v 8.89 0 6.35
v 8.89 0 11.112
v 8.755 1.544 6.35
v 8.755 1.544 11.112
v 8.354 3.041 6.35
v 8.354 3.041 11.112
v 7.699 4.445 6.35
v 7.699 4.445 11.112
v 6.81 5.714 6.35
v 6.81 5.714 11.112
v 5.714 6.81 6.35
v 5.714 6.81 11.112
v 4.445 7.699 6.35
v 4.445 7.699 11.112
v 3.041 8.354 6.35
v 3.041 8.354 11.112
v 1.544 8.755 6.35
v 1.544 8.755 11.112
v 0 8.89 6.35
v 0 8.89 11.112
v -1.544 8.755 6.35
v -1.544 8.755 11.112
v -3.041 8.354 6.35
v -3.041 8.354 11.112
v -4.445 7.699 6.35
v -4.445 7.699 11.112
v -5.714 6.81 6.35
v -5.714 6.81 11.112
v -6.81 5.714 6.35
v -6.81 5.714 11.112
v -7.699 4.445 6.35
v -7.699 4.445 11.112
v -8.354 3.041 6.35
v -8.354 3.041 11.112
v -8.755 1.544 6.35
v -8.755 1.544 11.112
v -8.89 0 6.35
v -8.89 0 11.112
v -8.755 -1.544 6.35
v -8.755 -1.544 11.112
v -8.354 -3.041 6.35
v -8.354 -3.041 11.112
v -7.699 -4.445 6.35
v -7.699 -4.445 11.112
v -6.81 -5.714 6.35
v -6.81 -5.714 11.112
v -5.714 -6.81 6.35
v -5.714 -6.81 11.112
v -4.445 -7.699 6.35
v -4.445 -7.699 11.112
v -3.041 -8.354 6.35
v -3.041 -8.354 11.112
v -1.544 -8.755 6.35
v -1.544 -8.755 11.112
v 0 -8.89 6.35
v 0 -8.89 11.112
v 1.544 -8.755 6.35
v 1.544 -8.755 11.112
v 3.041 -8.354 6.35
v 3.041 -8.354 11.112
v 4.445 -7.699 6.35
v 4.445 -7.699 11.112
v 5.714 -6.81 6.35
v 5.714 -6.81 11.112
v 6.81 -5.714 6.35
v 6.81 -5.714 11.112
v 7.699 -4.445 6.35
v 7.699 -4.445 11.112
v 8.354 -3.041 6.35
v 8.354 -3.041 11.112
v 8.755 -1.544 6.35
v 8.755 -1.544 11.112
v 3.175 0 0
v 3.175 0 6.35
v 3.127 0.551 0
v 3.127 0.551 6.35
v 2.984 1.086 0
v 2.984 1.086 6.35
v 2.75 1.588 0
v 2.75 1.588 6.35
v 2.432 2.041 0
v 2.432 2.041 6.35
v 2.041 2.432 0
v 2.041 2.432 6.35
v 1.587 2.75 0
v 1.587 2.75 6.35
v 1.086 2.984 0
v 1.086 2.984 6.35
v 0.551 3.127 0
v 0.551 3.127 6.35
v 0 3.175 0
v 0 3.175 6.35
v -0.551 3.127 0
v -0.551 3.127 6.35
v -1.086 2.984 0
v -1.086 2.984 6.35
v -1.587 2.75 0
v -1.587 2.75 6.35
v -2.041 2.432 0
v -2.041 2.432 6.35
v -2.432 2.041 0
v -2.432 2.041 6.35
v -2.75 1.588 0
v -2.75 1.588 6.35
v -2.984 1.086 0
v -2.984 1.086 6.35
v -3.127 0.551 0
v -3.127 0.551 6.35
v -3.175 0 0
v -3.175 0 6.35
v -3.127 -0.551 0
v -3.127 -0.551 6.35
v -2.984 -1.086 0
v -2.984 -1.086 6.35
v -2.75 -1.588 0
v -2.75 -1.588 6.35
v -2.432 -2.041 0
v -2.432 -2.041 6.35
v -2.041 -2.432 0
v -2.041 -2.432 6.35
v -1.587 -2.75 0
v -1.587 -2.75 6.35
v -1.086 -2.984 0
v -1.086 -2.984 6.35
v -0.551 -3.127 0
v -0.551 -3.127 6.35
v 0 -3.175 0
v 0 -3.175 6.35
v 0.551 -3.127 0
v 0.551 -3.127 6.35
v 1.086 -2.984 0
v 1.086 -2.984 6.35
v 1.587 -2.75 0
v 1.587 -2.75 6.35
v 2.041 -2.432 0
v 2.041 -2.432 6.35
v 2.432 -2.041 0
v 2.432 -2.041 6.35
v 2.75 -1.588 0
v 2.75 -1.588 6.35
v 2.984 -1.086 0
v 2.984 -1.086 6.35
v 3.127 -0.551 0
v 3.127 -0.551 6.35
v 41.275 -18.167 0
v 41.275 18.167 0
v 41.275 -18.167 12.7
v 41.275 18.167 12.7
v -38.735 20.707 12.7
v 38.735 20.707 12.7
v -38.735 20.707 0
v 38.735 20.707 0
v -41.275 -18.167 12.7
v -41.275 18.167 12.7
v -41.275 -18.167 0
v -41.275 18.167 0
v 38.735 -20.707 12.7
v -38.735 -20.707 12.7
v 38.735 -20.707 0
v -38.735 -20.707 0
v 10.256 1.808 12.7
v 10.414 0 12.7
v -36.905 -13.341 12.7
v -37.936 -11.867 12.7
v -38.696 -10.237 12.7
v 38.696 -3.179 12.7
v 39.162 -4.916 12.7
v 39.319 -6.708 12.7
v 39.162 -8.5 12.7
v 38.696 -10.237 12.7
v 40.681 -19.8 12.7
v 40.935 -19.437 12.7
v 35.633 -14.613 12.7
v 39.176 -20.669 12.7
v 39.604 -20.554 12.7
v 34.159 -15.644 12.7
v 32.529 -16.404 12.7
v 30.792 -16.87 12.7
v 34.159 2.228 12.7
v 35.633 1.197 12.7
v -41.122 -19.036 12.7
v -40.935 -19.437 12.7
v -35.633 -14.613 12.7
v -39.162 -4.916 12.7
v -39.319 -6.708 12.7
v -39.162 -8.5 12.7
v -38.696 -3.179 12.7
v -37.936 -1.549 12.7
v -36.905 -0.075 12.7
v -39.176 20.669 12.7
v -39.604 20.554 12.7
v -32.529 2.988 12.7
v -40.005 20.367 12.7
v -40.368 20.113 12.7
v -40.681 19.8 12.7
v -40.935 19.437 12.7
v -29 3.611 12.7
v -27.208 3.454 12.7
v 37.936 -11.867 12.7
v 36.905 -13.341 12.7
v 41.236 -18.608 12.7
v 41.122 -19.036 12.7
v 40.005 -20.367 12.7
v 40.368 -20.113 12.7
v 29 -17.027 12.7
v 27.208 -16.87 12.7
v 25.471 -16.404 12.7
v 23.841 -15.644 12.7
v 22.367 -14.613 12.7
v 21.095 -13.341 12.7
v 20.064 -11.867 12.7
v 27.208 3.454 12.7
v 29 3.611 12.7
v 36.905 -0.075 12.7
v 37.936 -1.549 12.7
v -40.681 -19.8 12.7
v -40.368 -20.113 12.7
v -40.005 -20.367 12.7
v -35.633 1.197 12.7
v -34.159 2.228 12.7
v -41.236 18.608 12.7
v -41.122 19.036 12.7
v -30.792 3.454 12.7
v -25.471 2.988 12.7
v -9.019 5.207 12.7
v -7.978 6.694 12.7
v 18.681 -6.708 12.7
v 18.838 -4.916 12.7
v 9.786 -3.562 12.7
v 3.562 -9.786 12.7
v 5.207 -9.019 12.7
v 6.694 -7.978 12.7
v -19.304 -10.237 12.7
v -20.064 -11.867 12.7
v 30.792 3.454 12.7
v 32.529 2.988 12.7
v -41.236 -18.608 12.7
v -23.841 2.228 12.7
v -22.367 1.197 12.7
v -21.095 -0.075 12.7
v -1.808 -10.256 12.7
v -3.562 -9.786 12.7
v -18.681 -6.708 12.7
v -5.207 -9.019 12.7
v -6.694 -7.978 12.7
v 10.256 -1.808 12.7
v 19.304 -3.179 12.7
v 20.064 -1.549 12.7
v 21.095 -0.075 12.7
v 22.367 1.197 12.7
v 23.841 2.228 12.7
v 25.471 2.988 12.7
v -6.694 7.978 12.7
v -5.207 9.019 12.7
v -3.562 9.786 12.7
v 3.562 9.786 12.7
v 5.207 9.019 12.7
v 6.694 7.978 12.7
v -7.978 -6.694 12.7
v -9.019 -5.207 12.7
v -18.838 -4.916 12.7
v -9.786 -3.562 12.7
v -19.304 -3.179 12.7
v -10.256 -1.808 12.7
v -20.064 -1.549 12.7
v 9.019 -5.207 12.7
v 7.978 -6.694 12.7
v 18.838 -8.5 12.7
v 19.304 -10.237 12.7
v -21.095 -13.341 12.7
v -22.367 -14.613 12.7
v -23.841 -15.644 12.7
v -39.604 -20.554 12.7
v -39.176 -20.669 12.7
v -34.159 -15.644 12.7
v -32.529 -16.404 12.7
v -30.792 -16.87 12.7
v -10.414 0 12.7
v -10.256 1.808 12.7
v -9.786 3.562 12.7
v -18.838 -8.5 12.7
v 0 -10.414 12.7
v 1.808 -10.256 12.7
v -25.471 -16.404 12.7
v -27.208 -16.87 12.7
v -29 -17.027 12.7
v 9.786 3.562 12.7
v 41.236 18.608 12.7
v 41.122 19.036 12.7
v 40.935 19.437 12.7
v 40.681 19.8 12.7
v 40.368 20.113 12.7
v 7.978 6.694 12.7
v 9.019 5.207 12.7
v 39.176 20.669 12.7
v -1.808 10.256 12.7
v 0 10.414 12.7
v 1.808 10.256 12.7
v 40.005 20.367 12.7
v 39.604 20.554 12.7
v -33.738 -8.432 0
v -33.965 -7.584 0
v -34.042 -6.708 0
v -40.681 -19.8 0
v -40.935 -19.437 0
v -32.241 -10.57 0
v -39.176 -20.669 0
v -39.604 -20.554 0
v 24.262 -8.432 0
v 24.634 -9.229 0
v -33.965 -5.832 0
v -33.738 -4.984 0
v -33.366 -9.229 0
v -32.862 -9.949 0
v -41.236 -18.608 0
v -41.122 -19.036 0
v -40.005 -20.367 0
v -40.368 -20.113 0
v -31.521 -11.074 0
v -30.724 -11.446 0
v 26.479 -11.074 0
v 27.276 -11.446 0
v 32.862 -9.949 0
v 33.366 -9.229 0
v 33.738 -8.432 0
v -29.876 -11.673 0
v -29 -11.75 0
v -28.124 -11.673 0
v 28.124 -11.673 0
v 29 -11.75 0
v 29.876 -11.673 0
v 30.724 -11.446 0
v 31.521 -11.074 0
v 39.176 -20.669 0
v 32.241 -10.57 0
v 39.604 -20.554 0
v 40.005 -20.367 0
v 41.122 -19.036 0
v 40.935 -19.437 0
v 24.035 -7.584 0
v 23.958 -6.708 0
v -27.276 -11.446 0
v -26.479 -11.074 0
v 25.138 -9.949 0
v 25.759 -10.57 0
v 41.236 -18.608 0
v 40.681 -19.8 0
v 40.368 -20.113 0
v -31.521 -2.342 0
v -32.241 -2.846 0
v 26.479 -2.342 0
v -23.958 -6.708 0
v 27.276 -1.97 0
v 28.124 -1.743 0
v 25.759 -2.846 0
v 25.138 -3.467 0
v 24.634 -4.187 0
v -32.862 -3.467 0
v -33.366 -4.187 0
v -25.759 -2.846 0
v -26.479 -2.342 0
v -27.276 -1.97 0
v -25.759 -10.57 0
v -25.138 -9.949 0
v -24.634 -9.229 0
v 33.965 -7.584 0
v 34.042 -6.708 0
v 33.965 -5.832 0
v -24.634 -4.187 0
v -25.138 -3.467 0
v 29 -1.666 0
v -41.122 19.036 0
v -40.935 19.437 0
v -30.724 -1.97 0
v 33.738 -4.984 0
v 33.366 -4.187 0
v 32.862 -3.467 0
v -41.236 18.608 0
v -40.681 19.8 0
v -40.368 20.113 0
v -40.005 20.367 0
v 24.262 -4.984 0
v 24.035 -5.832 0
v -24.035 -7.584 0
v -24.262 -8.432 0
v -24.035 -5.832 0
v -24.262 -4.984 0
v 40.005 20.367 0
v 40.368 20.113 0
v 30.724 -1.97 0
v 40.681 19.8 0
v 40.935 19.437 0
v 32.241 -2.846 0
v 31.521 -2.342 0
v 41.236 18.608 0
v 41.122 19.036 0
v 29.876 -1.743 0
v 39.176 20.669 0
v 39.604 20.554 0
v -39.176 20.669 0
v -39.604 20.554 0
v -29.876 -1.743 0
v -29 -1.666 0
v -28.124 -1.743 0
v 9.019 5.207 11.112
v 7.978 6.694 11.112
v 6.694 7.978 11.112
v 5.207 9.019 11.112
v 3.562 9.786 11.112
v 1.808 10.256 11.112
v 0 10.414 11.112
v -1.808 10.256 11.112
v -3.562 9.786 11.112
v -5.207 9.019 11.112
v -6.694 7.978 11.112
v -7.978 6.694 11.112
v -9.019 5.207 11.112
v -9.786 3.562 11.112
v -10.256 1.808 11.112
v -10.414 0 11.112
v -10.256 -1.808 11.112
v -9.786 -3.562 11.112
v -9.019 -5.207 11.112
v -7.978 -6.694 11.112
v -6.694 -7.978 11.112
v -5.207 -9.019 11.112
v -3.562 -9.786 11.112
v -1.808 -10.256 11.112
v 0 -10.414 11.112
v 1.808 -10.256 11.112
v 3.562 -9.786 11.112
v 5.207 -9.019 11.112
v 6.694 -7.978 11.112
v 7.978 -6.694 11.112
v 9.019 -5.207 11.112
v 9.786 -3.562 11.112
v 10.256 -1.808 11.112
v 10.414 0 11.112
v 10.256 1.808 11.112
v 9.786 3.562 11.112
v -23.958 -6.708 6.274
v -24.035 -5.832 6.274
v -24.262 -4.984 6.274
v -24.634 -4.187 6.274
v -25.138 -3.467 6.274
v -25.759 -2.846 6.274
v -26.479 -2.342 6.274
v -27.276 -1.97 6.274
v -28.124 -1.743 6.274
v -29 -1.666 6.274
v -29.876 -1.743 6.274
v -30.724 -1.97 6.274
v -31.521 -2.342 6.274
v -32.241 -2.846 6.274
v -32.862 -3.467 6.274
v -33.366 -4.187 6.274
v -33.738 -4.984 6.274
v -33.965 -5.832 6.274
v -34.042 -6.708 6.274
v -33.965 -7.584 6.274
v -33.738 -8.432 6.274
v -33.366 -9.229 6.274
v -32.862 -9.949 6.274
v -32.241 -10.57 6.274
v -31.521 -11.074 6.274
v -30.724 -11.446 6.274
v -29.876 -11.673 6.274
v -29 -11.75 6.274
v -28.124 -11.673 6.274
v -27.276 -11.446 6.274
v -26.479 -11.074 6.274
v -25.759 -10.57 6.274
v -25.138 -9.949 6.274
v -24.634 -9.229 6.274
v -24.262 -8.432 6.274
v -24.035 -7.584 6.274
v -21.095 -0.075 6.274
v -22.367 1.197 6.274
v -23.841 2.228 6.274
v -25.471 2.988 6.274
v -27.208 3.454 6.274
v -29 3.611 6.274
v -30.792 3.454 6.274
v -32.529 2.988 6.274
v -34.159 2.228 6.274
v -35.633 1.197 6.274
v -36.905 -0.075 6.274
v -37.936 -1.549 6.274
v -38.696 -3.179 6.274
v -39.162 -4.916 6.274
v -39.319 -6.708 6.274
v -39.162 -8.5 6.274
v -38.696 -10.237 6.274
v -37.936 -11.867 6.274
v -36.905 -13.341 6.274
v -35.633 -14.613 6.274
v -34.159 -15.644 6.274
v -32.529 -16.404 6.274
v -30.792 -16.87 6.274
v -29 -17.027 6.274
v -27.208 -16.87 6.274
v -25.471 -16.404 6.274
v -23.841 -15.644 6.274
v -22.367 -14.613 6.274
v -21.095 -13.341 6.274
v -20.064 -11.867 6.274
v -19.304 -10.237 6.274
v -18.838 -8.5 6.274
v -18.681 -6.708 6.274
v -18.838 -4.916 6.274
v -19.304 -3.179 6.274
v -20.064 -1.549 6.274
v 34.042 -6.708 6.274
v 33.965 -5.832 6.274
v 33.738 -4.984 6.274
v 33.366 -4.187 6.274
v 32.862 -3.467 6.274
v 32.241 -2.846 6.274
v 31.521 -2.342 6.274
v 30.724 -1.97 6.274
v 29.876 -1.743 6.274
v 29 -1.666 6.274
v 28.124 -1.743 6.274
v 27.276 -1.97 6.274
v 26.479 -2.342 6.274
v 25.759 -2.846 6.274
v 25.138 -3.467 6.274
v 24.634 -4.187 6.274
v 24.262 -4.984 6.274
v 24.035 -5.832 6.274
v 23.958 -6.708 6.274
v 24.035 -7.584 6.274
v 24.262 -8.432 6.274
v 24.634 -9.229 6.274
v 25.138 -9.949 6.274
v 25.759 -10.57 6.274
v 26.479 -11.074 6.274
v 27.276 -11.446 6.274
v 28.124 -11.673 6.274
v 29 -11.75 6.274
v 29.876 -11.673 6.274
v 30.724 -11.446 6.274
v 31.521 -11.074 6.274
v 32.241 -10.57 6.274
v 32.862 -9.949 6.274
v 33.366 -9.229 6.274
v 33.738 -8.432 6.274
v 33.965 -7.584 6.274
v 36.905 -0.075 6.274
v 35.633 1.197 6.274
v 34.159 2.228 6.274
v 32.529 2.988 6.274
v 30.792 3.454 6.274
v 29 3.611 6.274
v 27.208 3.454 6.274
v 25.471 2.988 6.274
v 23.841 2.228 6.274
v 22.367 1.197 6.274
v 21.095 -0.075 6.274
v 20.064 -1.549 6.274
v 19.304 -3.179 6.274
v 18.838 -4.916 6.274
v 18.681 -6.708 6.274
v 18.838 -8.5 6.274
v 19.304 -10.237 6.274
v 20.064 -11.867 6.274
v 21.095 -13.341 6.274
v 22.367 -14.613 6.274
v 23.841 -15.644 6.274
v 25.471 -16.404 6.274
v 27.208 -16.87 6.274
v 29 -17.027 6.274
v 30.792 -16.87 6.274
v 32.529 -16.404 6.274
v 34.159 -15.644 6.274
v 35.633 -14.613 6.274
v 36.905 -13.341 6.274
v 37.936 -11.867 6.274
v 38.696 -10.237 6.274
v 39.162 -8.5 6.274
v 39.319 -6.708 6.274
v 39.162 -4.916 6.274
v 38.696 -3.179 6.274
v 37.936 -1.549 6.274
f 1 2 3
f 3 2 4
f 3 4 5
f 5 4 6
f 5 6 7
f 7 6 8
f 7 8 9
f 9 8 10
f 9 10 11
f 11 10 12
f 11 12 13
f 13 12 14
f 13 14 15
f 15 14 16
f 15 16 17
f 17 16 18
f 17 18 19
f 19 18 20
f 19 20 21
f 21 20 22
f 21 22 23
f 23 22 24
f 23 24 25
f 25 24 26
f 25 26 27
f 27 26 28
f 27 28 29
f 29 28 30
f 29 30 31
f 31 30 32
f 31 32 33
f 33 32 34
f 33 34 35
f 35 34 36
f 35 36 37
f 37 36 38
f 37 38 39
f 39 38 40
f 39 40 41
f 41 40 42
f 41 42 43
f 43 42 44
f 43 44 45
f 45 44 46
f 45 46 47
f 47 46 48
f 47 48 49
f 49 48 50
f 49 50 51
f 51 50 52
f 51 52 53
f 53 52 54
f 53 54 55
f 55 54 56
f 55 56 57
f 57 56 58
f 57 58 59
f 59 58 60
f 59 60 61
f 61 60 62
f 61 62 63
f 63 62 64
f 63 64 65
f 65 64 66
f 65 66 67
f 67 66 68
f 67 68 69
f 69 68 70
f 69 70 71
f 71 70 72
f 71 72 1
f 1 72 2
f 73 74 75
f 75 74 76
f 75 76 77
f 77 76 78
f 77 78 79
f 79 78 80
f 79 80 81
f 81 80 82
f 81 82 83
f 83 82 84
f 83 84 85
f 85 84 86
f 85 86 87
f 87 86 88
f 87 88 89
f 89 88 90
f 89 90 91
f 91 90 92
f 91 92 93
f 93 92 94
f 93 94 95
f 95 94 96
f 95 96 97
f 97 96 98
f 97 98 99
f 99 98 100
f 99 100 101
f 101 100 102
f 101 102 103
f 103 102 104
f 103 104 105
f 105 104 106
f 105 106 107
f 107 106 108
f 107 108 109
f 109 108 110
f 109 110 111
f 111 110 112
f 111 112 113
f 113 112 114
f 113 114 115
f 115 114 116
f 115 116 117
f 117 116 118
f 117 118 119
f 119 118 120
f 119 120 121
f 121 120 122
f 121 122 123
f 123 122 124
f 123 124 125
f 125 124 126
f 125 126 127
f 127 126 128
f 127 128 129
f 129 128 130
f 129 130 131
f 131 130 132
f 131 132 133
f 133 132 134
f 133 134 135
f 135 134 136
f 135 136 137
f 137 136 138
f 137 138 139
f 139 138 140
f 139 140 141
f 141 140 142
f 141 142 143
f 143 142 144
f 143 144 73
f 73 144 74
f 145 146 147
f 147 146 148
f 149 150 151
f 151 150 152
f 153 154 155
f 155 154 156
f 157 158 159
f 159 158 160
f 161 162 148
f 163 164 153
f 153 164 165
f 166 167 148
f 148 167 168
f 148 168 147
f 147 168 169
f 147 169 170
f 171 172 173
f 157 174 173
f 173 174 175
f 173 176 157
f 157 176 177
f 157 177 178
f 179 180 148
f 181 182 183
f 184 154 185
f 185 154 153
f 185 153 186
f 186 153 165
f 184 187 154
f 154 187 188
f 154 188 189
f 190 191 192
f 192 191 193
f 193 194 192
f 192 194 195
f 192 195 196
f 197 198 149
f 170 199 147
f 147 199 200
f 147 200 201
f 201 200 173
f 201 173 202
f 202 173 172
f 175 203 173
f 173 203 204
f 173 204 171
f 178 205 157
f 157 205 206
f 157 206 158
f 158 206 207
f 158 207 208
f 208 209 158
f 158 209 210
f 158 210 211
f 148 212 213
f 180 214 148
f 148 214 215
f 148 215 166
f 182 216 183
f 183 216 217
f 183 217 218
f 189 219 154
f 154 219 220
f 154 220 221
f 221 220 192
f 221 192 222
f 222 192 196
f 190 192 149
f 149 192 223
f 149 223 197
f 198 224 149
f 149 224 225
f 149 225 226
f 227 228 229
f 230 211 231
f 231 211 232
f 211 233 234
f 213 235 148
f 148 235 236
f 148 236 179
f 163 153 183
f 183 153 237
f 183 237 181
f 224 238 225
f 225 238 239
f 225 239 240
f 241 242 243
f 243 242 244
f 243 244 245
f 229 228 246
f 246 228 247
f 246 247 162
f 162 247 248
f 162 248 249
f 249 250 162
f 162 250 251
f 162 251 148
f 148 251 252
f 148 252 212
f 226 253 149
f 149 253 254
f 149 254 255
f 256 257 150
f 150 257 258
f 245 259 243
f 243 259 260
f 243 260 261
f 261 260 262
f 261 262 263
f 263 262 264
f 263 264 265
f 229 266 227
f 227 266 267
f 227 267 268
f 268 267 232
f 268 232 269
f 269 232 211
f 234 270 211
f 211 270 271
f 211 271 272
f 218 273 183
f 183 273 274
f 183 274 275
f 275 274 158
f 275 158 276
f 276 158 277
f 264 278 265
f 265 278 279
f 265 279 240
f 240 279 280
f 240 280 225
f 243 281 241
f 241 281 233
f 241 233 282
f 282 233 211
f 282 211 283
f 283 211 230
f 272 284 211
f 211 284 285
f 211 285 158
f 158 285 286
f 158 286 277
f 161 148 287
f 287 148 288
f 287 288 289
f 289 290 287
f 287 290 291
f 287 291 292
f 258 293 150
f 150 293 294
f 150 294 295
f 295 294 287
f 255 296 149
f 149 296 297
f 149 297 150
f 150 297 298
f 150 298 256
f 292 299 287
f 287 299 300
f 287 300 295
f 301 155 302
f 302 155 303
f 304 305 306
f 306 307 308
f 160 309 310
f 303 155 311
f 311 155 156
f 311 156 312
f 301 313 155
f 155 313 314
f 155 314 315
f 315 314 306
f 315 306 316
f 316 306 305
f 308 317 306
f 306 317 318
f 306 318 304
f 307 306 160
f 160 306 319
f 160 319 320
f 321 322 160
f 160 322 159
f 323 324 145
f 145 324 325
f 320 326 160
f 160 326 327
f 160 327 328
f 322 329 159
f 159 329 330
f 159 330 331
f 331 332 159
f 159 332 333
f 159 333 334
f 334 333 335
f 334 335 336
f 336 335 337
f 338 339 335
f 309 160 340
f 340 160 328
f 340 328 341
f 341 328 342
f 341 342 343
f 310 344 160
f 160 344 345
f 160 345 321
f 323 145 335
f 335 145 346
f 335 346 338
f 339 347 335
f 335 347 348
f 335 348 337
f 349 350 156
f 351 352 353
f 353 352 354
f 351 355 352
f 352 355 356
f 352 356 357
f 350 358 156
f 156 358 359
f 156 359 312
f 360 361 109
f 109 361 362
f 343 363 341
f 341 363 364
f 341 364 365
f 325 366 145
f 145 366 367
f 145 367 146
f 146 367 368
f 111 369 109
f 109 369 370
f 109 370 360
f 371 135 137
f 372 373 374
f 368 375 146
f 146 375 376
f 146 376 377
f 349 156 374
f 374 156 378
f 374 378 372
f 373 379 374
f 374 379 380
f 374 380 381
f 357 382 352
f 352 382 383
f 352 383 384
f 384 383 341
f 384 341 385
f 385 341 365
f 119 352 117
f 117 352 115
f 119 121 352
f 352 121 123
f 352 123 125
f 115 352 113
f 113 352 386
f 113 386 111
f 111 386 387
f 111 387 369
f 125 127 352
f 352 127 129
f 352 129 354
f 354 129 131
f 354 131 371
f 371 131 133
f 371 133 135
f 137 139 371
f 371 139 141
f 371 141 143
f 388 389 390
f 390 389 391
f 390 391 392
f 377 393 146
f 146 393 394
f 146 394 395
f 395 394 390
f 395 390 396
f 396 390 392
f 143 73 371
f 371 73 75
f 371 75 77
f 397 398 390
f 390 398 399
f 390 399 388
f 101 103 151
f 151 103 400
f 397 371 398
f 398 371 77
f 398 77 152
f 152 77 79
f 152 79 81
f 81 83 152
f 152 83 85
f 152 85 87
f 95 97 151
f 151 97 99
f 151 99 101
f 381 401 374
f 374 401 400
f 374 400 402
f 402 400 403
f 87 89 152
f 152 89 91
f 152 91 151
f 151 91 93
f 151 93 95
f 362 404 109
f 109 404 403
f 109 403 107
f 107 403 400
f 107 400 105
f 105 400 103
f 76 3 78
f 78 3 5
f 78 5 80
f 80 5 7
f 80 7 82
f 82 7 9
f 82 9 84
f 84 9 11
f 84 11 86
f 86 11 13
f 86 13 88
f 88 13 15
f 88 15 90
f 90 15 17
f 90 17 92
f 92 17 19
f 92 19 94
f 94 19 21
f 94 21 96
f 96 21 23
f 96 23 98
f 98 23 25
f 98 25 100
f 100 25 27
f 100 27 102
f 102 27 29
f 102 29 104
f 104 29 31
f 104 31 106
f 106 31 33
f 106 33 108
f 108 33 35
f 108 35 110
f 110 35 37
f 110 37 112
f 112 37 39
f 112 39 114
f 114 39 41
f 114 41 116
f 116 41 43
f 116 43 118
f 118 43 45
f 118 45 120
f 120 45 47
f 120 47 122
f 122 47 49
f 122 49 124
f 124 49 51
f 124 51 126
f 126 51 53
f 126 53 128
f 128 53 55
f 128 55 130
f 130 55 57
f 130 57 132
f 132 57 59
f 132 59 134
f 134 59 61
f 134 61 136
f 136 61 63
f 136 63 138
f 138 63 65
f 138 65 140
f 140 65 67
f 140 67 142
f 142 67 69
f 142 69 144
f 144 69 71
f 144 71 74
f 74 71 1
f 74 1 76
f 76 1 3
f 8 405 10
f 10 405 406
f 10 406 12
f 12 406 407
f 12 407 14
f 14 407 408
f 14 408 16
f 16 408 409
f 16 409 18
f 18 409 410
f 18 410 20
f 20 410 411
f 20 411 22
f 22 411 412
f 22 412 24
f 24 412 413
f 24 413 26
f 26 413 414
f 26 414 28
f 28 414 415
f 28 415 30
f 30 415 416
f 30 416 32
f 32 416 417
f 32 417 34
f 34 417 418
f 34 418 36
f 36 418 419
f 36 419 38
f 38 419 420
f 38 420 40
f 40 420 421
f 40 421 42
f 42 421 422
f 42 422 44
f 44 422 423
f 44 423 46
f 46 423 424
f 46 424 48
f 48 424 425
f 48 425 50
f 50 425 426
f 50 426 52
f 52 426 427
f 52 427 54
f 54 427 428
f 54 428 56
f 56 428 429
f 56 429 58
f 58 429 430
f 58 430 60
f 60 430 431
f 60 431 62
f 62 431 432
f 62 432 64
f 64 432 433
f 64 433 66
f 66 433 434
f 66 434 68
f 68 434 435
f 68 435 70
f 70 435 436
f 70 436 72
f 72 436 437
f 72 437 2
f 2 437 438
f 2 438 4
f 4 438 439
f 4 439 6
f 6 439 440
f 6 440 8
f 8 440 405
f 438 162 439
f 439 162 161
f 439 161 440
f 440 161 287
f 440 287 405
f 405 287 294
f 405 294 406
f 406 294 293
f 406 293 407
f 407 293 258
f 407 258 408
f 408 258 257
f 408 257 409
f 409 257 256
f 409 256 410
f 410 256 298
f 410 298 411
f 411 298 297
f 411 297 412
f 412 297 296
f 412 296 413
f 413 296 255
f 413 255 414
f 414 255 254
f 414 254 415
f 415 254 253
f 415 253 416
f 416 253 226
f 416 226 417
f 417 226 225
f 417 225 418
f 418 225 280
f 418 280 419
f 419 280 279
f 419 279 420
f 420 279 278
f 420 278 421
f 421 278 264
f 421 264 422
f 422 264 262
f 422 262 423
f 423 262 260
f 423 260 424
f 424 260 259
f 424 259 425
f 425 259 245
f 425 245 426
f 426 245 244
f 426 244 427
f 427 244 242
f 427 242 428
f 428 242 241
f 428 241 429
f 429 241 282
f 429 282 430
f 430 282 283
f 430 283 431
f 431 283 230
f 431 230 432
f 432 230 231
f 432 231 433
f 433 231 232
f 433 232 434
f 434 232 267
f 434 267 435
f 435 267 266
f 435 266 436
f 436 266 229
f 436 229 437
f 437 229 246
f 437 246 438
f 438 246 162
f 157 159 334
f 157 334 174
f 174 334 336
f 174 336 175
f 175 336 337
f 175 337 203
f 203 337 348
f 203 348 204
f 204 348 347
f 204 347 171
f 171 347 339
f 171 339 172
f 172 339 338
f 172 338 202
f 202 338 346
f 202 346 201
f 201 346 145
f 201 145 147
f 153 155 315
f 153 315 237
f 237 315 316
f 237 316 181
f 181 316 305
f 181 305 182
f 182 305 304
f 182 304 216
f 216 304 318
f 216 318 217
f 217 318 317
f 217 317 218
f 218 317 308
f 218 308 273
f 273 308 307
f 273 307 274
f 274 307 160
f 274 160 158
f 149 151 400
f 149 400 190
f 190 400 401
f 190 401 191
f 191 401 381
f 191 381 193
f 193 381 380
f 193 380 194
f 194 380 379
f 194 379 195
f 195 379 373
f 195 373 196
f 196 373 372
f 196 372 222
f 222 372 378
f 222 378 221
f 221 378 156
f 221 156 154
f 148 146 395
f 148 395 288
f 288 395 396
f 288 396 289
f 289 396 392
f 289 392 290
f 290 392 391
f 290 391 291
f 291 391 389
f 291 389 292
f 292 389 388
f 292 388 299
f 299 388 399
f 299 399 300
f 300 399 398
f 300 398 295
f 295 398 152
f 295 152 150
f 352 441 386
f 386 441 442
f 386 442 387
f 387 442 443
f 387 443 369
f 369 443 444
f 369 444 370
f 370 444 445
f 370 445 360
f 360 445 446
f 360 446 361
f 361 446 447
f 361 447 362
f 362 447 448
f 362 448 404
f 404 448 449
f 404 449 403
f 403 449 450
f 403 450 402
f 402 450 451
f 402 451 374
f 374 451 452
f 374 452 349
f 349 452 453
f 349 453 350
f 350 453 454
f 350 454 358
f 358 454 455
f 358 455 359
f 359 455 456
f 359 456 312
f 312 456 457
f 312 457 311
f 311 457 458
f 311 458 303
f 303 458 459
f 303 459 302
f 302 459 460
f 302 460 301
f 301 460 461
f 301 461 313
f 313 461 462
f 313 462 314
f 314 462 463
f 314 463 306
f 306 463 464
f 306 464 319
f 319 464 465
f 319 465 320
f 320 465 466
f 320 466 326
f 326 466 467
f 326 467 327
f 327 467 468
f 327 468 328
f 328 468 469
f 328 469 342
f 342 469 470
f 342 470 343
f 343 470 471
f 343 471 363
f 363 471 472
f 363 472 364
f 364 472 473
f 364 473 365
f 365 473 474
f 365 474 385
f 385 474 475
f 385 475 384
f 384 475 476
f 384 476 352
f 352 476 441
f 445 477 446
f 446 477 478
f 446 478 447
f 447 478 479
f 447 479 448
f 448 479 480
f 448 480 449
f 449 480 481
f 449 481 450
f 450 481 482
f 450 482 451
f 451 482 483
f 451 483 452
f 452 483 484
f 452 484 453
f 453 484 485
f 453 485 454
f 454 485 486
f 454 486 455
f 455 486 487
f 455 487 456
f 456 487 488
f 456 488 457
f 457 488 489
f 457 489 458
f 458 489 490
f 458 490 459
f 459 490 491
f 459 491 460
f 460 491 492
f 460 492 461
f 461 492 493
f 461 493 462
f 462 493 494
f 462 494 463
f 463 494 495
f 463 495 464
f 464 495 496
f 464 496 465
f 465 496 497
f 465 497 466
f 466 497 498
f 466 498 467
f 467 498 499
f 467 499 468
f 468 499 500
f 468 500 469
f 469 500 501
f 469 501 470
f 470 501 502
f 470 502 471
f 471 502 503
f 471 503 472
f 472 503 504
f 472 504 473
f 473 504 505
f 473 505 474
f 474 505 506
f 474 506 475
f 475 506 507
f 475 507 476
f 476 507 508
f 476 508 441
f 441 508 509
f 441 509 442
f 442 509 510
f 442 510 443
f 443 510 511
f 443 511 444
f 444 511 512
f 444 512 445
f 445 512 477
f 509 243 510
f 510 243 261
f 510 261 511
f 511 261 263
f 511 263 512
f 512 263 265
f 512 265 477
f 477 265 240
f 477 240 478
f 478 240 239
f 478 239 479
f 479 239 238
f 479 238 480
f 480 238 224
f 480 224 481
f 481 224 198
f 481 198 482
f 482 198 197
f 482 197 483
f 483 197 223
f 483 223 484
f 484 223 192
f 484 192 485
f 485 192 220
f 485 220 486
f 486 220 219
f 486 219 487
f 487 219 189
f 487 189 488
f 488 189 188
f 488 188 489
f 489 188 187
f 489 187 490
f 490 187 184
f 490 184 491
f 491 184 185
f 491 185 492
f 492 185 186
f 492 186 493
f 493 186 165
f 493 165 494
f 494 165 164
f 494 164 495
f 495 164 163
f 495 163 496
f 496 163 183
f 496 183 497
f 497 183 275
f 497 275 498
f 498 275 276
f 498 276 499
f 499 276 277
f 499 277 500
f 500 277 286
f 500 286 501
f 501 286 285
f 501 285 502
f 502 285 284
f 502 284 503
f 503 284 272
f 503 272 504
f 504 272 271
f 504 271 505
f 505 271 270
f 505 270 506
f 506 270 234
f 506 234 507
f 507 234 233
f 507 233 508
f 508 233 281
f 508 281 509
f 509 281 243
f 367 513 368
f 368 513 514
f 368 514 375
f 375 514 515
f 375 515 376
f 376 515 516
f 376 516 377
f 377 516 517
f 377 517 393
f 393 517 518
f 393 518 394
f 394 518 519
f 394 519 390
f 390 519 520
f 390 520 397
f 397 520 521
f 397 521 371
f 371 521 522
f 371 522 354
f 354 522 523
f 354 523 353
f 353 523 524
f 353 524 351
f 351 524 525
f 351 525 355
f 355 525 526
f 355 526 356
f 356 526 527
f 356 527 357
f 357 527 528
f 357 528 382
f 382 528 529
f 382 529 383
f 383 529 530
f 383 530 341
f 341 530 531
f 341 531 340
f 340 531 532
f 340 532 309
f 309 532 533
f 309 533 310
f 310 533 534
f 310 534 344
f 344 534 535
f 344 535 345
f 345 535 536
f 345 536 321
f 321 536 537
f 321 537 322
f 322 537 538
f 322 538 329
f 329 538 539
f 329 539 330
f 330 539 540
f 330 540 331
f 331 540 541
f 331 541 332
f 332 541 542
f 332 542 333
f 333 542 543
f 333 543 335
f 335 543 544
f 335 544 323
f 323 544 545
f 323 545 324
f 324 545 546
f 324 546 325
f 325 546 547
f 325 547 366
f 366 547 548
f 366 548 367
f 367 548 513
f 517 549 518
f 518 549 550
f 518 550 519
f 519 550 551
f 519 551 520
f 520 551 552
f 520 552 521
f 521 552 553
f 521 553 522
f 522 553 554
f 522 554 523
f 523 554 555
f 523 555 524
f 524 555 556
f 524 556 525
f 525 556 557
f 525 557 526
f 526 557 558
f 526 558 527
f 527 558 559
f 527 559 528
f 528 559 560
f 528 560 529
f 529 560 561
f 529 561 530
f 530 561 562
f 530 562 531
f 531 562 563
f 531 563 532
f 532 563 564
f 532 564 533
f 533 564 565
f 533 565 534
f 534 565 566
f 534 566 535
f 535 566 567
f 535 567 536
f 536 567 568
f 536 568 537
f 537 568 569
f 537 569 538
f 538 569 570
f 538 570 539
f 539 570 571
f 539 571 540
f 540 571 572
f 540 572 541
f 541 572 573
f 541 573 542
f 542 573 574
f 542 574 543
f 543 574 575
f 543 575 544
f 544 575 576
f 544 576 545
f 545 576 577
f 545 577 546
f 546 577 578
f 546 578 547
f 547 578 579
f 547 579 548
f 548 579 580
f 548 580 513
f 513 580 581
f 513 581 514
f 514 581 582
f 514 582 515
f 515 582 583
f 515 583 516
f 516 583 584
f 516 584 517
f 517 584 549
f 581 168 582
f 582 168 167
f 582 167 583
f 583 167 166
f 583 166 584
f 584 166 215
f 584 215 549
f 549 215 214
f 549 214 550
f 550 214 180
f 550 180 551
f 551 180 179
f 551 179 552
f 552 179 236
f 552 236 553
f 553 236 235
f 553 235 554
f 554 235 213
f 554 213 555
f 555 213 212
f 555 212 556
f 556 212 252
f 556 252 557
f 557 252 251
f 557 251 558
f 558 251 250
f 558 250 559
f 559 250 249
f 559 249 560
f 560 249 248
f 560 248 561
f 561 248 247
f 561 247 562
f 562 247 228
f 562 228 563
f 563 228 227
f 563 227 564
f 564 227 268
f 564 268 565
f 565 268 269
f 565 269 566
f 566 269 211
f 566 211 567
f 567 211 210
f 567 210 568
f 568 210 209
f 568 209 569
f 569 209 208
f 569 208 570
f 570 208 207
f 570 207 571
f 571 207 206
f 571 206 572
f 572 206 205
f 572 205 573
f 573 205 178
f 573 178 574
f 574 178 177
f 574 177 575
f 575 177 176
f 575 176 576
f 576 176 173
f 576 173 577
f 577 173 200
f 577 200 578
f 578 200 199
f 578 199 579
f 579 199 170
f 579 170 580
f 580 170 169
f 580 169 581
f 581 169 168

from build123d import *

# Parameters (mm, degrees)
SKETCH1_W                                            = 82.55
SKETCH1_H                                            = 41.4147
BOSS_EXTRUDE1_DEPTH                                  = 12.7
SKETCH2_R                                            = 3.175
CUT_EXTRUDE1_DEPTH                                   = 12.7
SKETCH3_R                                            = 8.89
CUT_EXTRUDE2_DEPTH                                   = 6.35
SKETCH5_R                                            = 10.414
CUT_EXTRUDE7_DEPTH                                   = 1.5875
FILLET1_R                                            = 2.54
CBORE_FOR_3_8_BINDING_HEAD_MACHINE_SCREW_D           = 10.0838
CBORE_FOR_3_8_BINDING_HEAD_MACHINE_SCREW_CBORE_D     = 20.6375
CBORE_FOR_3_8_BINDING_HEAD_MACHINE_SCREW_CBORE_DEPTH = 6.4262


with BuildPart() as part:
    # Sketch1 → Boss-Extrude1 (new body)
    with BuildSketch(Plane.XY):
        Rectangle(SKETCH1_W, SKETCH1_H)
    extrude(amount=BOSS_EXTRUDE1_DEPTH)

    # Sketch2 → Cut-Extrude1 (cut)
    with BuildSketch(Plane.XY.offset(12.7)):
        Circle(SKETCH2_R)
    extrude(amount=-CUT_EXTRUDE1_DEPTH, mode=Mode.SUBTRACT)

    # Sketch3 → Cut-Extrude2 (cut)
    with BuildSketch(Plane.XY.offset(12.7)):
        Circle(SKETCH3_R)
    extrude(amount=-CUT_EXTRUDE2_DEPTH, mode=Mode.SUBTRACT)

    # Sketch5 → Cut-Extrude7 (cut)
    with BuildSketch(Plane.XY.offset(12.7)):
        Circle(SKETCH5_R)
    extrude(amount=-CUT_EXTRUDE7_DEPTH, mode=Mode.SUBTRACT)

    # Fillet1
    fillet1_edges = [part.edges().sort_by_distance(p)[0] for p in [
        (41.275, -20.70735, 6.35),
        (-41.275, -20.70735, 6.35),
        (-41.275, 20.70735, 6.35),
        (41.275, 20.70735, 6.35),
    ]]
    fillet(fillet1_edges, radius=FILLET1_R)

    # CBORE for 3/8 Binding Head Machine Screw1 (through all)
    with Locations(Plane.XY.offset(12.7)):
        with Locations((-29, -6.708000046), (29, -6.708000046)):
            CounterBoreHole(CBORE_FOR_3_8_BINDING_HEAD_MACHINE_SCREW_D / 2, CBORE_FOR_3_8_BINDING_HEAD_MACHINE_SCREW_CBORE_D / 2, CBORE_FOR_3_8_BINDING_HEAD_MACHINE_SCREW_CBORE_DEPTH)


solid = part.part
